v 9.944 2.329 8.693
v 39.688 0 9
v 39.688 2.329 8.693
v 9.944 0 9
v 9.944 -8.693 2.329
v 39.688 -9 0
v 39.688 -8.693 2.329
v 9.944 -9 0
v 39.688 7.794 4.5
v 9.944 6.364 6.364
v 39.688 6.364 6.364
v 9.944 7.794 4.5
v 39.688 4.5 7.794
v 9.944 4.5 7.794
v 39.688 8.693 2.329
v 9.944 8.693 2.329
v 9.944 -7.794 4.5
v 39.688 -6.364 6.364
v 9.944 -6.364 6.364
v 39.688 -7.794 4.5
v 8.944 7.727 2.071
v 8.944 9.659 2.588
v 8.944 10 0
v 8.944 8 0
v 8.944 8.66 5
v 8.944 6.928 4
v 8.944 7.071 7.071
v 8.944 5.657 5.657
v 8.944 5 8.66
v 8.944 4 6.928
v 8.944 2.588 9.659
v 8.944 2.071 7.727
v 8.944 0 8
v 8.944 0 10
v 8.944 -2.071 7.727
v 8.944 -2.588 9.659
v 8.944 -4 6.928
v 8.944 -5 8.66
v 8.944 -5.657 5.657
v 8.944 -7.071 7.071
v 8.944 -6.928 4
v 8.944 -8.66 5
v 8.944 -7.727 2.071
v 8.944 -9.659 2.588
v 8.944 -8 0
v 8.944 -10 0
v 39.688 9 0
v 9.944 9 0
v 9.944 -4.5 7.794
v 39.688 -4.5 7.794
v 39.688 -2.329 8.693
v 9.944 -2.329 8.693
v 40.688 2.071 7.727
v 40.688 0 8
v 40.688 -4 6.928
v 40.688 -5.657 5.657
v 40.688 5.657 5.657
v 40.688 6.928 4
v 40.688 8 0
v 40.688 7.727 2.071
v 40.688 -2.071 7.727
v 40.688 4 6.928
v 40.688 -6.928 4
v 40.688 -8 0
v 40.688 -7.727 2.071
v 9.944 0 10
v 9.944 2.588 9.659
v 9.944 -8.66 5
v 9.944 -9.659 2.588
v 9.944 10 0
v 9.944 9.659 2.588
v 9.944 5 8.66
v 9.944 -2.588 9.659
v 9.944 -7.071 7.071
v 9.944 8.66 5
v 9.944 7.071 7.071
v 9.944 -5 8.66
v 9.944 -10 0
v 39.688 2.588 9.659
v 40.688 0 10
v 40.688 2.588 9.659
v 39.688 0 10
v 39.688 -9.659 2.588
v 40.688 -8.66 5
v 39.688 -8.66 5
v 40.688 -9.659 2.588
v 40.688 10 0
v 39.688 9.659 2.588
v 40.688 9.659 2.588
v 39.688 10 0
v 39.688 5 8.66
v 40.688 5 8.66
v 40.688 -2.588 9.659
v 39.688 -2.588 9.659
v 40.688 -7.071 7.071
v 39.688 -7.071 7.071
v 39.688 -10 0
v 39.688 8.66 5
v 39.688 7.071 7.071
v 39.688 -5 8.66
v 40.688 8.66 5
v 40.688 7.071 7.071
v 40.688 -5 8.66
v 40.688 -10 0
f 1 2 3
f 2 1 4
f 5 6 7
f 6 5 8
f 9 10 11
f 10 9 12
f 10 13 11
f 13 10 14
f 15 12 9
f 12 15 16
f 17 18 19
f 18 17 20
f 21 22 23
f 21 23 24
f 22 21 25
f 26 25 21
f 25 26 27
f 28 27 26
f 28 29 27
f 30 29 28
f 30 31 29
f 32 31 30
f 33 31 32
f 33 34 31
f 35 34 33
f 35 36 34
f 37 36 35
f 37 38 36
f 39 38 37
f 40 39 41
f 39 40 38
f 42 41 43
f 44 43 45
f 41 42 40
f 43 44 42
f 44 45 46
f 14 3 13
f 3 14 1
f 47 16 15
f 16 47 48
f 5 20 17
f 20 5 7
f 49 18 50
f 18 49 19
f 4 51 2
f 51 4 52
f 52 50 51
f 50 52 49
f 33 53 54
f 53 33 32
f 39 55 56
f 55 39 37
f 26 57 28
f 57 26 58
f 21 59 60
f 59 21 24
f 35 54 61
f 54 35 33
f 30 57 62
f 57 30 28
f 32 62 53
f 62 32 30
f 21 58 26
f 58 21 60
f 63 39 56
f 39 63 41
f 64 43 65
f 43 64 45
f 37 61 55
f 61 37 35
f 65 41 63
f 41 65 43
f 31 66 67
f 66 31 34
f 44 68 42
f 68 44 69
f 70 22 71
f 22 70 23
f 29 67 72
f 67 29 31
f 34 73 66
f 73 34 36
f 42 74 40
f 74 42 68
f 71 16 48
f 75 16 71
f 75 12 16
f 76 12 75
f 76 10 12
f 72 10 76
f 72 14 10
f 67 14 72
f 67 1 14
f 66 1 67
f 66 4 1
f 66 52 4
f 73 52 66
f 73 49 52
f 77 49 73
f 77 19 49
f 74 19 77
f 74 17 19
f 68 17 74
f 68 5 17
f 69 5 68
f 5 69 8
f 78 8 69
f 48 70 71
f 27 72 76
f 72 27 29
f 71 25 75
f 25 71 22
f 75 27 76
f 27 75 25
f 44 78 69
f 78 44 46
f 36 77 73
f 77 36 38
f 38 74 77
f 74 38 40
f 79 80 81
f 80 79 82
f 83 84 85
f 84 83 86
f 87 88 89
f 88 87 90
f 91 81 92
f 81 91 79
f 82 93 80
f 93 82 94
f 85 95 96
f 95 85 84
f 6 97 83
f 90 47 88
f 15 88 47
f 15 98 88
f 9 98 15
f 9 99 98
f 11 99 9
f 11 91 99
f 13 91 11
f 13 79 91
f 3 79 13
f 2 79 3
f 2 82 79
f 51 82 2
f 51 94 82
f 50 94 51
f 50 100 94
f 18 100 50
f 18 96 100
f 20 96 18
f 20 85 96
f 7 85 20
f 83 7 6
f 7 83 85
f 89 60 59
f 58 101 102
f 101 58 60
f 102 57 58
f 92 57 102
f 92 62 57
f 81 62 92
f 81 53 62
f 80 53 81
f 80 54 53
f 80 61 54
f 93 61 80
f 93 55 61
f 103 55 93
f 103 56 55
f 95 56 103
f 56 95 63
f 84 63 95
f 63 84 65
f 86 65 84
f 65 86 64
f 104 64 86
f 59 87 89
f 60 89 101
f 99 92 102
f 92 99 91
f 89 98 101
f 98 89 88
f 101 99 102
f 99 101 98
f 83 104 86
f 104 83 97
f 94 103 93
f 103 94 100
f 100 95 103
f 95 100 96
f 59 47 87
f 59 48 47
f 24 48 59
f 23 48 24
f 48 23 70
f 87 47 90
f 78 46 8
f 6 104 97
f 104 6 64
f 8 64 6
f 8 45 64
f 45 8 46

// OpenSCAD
// file: ../build_environments.scad
// build_environments.scad: modules to build level sections
//

module pool(diameter=10.0, wall_height=2.0, step_width=3.0, connections=[])
{
    difference() {
        union() {
        difference() {
            cylinder(h=0.5,r1=diameter+step_width,r2=diameter+step_width,$fn=48);
            translate([0,0,-0.1])
                cylinder(h=0.7,r1=diameter,r2=diameter,$fn=48);
        }
        difference() {
            cylinder(h=wall_height,r1=diameter+step_width+1.0,r2=diameter+step_width+1.0,$fn=48);
            translate([0,0,-0.1])
                cylinder(h=wall_height+0.2,r1=diameter+step_width,r2=diameter+step_width,$fn=48);
        }
        }
    
        for (c = connections)
        {
            rotate([0,90,0]) {
                angle = atan2(c[1],c[0]);
                rotate([-angle,0,0]) {
                    cylinder(h=diameter+5.0,r1=c[2],r2=c[2],$fn=48);
                }
            }
        }
    }
}

module straight(length=10.0, width=2.0, dy1=0.0, dy2=0.0, dz=0.0)
{
    dims = [0, 0, 0, 0, 0, (dz/length)];
    matrix = [
        [ 1, dims[0], dims[1], 0 ],
        [ dims[2], 1, dims[4], 0 ],
        [ dims[5], dims[3], 1, 0 ],
        [ 0, 0, 0, 1 ]
    ];
    multmatrix(matrix)
    difference() {
        translate([dy1,0,0])
        union() {
            rotate([0,90,0]) {
                difference() {
                    cylinder(h=(length-dy1-dy2),r1=width+1.0,r2=width+1.0,$fn=24);
                    translate([0,0,-0.1])
                        cylinder(h=(length-dy1-dy2+0.2),r1=width,r2=width,$fn=24);
                }
                difference() {
                    cylinder(h=1.0,r1=width+2.0,r2=width+2.0,$fn=24);
                    translate([0,0,-0.1])
                        cylinder(h=1.2,r1=width,r2=width,$fn=24);
                }
                translate([0,0,(length-dy1-dy2)-1.0]) {
                    difference() {
                        cylinder(h=1.0,r1=width+2.0,r2=width+2.0,$fn=24);
                        translate([0,0,-0.1])
                            cylinder(h=1.2,r1=width,r2=width,$fn=24);
                    }
                }
            }
        }
        translate([0,0,-(2*width+4.0)/2])
            cube([3*length,3*length,2*width+4.0],center=true);
    }
}

module curve(p0=[0,0], center=[0,0], dir=1, angle=0.0, width=2.0)
{
    radius = sqrt((p0[0]-center[0])*(p0[0]-center[0]) + (p0[1]-center[1])*(p0[1]-center[1]));
    if (dir == 0) {
        difference() {
            rotate([0,0,-90])
            difference() {
                rotate_extrude(angle = angle, convexity = 10, $fn=32)
                    translate([radius, 0, 0])
                        circle(r = width+1.0,$fn=24);
                rotate([0,0,-1.0])
                    rotate_extrude(angle = angle+2.0, convexity = 10, $fn=32)
                        translate([radius, 0, 0])
                            circle(r = width,$fn=24);
            }
            translate([0,0,-(2*width+4.0)/2])
                cube([5*radius,5*radius,2*width+4.0],center=true);
        }
    }
    else {
        difference() {
            rotate([0,0,90])
            difference() {
                rotate_extrude(angle = -angle, convexity = 10, $fn=32)
                    translate([radius, 0, 0])
                        circle(r = width+1.0,$fn=24);
                rotate([0,0,1.0])
                    rotate_extrude(angle = -angle-2.0, convexity = 10, $fn=32)
                        translate([radius, 0, 0])
                            circle(r = width,$fn=24);
            }
            translate([0,0,-(2*width+4.0)/2])
                cube([5*radius,5*radius,2*width+4.0],center=true);
        }
    }

}

// test pool
//pool(diameter=12.0000, wall_height=3.0000, step_width=3.0000, connections=[[0.0000,-26.0000,2.0000], [23.6074,0.0000,2.0000]]);

// test straight, slope
//straight(length=26.0000, width=2.0000, dy1=11.8322, dy2=6.7082, dz=0.0000);
//straight(length=29.1549, width=12.0000, dy1=0.0000, dy2=0.0000, dz=-15.0000);

// test curve
//curve(p0=[23.6074, 0.0000], center=[23.6074, 5.0000], dir=0, angle=60.1011, width=2.0000);
//curve(p0=[33.6426, 12.4219], center=[37.9771, 9.9295], dir=1, angle=120.4627, width=2.0000);
// main file
use <../build_environments.scad>;
straight(length=40.6884, width=8.0000, dy1=8.9443, dy2=0.0000, dz=0.0000);
